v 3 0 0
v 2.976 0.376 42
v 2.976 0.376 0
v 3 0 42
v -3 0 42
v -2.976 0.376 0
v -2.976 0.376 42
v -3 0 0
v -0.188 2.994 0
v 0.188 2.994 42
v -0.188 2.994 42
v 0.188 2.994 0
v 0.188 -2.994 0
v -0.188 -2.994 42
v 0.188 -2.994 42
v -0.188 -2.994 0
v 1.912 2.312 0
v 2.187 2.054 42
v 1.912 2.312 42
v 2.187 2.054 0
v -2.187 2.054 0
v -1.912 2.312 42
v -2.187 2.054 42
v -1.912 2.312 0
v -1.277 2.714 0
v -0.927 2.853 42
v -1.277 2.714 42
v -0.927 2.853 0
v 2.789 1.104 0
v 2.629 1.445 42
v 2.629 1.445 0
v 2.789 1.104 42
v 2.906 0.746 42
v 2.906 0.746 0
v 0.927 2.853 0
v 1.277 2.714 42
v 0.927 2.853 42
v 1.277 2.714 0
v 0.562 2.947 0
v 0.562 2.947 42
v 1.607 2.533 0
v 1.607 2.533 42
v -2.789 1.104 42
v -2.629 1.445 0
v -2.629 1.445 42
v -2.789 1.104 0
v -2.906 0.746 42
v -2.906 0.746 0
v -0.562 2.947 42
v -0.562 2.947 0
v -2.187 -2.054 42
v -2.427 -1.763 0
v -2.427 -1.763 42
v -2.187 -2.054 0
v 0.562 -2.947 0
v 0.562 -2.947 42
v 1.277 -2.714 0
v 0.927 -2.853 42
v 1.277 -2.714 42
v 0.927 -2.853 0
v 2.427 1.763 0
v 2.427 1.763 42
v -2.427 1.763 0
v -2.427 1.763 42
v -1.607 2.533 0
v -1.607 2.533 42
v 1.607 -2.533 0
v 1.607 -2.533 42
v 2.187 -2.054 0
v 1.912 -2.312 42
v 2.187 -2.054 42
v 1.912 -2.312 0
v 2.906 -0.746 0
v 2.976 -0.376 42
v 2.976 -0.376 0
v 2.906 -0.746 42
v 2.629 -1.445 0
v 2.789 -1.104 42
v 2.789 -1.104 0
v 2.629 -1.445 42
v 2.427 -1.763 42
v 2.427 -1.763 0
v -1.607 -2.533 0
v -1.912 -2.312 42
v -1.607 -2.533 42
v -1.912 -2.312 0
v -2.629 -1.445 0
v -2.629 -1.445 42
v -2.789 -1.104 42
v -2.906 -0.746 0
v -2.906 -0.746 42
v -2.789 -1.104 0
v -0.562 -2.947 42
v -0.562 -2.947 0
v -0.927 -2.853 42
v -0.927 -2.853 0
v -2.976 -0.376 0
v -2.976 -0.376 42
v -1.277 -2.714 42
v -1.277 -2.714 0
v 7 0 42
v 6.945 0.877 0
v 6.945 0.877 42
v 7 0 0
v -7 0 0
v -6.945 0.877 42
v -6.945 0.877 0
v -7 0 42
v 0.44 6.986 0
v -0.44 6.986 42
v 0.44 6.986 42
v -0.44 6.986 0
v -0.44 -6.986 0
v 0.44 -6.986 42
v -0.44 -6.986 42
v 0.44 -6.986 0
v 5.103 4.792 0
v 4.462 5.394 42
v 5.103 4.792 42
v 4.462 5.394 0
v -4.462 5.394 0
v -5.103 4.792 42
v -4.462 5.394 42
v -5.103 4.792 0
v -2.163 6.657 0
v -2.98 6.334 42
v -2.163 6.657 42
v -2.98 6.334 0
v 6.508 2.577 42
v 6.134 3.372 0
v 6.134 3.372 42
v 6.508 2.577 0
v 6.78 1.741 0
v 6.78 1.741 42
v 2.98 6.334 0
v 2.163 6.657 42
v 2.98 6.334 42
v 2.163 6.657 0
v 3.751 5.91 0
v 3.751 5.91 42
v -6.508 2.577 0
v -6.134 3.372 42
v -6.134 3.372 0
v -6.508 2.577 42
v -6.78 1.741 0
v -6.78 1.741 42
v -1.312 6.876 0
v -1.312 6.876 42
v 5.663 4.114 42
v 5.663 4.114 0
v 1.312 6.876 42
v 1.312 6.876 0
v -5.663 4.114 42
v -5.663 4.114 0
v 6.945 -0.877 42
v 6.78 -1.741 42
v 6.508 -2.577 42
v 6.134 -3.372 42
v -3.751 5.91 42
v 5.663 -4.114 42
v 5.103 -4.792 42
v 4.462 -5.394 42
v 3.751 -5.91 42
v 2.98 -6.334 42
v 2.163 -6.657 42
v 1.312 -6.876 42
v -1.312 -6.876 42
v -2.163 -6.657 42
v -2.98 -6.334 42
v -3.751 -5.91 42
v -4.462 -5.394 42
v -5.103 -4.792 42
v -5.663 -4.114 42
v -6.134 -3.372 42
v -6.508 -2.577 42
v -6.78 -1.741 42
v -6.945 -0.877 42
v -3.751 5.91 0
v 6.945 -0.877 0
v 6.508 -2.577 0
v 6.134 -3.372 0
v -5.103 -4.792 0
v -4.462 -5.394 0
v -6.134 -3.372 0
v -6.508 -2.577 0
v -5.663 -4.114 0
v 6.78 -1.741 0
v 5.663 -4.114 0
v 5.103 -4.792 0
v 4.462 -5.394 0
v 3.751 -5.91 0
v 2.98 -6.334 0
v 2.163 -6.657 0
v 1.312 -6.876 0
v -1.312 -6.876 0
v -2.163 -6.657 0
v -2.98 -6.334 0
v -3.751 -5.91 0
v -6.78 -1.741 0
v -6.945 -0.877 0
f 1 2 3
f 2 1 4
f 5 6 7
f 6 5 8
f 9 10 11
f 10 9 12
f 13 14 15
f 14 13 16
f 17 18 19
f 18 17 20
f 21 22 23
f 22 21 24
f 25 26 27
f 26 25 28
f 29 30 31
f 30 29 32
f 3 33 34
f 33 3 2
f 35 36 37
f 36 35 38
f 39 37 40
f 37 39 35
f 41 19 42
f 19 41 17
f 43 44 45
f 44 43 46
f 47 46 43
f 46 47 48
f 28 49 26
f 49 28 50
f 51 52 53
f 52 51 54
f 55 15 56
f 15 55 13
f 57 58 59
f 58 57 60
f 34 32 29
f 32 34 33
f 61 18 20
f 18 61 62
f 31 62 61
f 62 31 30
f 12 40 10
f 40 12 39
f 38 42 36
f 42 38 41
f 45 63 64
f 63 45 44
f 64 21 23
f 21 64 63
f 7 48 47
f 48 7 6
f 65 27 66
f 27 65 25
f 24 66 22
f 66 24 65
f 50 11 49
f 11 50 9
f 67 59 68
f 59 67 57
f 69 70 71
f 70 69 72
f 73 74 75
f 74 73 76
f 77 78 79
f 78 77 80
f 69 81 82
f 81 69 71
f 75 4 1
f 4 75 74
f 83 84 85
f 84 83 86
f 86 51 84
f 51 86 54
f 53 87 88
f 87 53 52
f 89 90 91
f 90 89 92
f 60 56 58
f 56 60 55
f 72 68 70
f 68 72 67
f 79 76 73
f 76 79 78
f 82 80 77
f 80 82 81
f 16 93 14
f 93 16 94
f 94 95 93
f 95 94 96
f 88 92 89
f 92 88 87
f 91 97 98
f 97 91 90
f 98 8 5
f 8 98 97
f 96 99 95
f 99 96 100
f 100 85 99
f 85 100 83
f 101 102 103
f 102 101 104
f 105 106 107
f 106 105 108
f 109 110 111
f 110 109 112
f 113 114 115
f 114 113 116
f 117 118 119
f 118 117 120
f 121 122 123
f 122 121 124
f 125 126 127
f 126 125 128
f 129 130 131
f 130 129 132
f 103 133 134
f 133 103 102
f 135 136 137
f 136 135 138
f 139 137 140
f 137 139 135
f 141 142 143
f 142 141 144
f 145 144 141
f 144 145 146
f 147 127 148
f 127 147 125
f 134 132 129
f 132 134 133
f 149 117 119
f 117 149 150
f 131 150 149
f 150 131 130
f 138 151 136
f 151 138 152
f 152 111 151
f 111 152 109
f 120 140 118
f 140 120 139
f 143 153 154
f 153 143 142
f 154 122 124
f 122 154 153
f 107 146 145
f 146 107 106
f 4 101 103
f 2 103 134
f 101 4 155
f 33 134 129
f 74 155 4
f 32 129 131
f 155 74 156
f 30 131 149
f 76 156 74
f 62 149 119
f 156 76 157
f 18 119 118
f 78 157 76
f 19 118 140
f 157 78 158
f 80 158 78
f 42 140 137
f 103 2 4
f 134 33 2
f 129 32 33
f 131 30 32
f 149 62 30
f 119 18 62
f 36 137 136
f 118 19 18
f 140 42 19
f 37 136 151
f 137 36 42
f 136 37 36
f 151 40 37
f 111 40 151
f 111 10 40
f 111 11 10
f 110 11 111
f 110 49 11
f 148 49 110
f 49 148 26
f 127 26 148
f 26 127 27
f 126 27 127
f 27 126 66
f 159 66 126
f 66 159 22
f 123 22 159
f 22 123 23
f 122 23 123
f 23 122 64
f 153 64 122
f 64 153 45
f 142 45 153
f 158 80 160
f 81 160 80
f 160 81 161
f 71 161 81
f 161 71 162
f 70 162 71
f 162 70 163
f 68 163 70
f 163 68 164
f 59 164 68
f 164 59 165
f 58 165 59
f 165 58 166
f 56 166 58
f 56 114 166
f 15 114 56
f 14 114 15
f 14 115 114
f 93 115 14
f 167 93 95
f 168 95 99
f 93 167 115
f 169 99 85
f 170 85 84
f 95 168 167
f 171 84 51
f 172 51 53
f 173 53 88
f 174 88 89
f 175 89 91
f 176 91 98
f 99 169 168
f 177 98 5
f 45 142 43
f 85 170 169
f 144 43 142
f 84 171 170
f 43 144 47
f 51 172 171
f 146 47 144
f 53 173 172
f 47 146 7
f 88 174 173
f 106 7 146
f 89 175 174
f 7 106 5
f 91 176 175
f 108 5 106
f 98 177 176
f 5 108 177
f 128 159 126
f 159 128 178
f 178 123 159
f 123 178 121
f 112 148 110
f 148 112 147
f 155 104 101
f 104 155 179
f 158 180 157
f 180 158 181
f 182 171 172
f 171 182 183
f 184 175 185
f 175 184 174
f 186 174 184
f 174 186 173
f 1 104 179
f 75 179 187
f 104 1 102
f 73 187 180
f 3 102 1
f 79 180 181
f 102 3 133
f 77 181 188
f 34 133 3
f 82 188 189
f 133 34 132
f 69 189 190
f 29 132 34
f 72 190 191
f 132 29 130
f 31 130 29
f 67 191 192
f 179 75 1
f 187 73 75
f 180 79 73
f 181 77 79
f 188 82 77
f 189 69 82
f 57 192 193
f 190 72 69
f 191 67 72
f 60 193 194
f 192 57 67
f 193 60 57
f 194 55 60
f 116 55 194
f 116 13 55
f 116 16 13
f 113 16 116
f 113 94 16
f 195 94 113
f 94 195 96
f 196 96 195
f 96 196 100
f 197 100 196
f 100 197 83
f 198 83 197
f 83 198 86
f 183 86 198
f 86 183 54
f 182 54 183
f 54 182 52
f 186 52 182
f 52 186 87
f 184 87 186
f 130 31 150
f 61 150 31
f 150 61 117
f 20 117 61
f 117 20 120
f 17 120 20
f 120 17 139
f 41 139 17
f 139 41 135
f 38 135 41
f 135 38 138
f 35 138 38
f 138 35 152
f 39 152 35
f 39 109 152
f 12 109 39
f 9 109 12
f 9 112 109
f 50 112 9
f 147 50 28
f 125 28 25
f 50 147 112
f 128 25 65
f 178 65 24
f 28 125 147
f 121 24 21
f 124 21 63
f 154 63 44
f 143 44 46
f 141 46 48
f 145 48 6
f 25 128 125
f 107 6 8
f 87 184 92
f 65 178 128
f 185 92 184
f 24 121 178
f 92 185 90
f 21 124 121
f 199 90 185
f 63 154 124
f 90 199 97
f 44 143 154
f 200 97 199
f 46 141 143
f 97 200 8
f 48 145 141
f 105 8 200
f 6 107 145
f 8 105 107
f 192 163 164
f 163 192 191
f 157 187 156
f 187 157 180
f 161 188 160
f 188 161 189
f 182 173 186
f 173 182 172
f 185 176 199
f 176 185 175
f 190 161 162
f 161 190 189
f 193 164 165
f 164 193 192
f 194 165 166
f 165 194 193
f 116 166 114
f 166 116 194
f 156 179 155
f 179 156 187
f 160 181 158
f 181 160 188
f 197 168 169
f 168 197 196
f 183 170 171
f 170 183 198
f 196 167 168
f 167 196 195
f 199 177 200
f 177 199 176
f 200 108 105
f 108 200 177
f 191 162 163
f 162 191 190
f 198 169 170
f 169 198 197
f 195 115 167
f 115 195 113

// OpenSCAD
$fn = 50;


difference() {
	union() {
		cylinder(h = 42, r = 7.0000000000);
	}
	union() {
		translate(v = [0.0000000000, 0.0000000000, -100.0000000000]) {
			cylinder(h = 200, r = 3.0000000000);
		}
		cylinder(h = 42, r = 1.5000000000);
		cylinder(h = 42, r = 1.5000000000);
		cylinder(h = 42, r = 1.5000000000);
	}
}
